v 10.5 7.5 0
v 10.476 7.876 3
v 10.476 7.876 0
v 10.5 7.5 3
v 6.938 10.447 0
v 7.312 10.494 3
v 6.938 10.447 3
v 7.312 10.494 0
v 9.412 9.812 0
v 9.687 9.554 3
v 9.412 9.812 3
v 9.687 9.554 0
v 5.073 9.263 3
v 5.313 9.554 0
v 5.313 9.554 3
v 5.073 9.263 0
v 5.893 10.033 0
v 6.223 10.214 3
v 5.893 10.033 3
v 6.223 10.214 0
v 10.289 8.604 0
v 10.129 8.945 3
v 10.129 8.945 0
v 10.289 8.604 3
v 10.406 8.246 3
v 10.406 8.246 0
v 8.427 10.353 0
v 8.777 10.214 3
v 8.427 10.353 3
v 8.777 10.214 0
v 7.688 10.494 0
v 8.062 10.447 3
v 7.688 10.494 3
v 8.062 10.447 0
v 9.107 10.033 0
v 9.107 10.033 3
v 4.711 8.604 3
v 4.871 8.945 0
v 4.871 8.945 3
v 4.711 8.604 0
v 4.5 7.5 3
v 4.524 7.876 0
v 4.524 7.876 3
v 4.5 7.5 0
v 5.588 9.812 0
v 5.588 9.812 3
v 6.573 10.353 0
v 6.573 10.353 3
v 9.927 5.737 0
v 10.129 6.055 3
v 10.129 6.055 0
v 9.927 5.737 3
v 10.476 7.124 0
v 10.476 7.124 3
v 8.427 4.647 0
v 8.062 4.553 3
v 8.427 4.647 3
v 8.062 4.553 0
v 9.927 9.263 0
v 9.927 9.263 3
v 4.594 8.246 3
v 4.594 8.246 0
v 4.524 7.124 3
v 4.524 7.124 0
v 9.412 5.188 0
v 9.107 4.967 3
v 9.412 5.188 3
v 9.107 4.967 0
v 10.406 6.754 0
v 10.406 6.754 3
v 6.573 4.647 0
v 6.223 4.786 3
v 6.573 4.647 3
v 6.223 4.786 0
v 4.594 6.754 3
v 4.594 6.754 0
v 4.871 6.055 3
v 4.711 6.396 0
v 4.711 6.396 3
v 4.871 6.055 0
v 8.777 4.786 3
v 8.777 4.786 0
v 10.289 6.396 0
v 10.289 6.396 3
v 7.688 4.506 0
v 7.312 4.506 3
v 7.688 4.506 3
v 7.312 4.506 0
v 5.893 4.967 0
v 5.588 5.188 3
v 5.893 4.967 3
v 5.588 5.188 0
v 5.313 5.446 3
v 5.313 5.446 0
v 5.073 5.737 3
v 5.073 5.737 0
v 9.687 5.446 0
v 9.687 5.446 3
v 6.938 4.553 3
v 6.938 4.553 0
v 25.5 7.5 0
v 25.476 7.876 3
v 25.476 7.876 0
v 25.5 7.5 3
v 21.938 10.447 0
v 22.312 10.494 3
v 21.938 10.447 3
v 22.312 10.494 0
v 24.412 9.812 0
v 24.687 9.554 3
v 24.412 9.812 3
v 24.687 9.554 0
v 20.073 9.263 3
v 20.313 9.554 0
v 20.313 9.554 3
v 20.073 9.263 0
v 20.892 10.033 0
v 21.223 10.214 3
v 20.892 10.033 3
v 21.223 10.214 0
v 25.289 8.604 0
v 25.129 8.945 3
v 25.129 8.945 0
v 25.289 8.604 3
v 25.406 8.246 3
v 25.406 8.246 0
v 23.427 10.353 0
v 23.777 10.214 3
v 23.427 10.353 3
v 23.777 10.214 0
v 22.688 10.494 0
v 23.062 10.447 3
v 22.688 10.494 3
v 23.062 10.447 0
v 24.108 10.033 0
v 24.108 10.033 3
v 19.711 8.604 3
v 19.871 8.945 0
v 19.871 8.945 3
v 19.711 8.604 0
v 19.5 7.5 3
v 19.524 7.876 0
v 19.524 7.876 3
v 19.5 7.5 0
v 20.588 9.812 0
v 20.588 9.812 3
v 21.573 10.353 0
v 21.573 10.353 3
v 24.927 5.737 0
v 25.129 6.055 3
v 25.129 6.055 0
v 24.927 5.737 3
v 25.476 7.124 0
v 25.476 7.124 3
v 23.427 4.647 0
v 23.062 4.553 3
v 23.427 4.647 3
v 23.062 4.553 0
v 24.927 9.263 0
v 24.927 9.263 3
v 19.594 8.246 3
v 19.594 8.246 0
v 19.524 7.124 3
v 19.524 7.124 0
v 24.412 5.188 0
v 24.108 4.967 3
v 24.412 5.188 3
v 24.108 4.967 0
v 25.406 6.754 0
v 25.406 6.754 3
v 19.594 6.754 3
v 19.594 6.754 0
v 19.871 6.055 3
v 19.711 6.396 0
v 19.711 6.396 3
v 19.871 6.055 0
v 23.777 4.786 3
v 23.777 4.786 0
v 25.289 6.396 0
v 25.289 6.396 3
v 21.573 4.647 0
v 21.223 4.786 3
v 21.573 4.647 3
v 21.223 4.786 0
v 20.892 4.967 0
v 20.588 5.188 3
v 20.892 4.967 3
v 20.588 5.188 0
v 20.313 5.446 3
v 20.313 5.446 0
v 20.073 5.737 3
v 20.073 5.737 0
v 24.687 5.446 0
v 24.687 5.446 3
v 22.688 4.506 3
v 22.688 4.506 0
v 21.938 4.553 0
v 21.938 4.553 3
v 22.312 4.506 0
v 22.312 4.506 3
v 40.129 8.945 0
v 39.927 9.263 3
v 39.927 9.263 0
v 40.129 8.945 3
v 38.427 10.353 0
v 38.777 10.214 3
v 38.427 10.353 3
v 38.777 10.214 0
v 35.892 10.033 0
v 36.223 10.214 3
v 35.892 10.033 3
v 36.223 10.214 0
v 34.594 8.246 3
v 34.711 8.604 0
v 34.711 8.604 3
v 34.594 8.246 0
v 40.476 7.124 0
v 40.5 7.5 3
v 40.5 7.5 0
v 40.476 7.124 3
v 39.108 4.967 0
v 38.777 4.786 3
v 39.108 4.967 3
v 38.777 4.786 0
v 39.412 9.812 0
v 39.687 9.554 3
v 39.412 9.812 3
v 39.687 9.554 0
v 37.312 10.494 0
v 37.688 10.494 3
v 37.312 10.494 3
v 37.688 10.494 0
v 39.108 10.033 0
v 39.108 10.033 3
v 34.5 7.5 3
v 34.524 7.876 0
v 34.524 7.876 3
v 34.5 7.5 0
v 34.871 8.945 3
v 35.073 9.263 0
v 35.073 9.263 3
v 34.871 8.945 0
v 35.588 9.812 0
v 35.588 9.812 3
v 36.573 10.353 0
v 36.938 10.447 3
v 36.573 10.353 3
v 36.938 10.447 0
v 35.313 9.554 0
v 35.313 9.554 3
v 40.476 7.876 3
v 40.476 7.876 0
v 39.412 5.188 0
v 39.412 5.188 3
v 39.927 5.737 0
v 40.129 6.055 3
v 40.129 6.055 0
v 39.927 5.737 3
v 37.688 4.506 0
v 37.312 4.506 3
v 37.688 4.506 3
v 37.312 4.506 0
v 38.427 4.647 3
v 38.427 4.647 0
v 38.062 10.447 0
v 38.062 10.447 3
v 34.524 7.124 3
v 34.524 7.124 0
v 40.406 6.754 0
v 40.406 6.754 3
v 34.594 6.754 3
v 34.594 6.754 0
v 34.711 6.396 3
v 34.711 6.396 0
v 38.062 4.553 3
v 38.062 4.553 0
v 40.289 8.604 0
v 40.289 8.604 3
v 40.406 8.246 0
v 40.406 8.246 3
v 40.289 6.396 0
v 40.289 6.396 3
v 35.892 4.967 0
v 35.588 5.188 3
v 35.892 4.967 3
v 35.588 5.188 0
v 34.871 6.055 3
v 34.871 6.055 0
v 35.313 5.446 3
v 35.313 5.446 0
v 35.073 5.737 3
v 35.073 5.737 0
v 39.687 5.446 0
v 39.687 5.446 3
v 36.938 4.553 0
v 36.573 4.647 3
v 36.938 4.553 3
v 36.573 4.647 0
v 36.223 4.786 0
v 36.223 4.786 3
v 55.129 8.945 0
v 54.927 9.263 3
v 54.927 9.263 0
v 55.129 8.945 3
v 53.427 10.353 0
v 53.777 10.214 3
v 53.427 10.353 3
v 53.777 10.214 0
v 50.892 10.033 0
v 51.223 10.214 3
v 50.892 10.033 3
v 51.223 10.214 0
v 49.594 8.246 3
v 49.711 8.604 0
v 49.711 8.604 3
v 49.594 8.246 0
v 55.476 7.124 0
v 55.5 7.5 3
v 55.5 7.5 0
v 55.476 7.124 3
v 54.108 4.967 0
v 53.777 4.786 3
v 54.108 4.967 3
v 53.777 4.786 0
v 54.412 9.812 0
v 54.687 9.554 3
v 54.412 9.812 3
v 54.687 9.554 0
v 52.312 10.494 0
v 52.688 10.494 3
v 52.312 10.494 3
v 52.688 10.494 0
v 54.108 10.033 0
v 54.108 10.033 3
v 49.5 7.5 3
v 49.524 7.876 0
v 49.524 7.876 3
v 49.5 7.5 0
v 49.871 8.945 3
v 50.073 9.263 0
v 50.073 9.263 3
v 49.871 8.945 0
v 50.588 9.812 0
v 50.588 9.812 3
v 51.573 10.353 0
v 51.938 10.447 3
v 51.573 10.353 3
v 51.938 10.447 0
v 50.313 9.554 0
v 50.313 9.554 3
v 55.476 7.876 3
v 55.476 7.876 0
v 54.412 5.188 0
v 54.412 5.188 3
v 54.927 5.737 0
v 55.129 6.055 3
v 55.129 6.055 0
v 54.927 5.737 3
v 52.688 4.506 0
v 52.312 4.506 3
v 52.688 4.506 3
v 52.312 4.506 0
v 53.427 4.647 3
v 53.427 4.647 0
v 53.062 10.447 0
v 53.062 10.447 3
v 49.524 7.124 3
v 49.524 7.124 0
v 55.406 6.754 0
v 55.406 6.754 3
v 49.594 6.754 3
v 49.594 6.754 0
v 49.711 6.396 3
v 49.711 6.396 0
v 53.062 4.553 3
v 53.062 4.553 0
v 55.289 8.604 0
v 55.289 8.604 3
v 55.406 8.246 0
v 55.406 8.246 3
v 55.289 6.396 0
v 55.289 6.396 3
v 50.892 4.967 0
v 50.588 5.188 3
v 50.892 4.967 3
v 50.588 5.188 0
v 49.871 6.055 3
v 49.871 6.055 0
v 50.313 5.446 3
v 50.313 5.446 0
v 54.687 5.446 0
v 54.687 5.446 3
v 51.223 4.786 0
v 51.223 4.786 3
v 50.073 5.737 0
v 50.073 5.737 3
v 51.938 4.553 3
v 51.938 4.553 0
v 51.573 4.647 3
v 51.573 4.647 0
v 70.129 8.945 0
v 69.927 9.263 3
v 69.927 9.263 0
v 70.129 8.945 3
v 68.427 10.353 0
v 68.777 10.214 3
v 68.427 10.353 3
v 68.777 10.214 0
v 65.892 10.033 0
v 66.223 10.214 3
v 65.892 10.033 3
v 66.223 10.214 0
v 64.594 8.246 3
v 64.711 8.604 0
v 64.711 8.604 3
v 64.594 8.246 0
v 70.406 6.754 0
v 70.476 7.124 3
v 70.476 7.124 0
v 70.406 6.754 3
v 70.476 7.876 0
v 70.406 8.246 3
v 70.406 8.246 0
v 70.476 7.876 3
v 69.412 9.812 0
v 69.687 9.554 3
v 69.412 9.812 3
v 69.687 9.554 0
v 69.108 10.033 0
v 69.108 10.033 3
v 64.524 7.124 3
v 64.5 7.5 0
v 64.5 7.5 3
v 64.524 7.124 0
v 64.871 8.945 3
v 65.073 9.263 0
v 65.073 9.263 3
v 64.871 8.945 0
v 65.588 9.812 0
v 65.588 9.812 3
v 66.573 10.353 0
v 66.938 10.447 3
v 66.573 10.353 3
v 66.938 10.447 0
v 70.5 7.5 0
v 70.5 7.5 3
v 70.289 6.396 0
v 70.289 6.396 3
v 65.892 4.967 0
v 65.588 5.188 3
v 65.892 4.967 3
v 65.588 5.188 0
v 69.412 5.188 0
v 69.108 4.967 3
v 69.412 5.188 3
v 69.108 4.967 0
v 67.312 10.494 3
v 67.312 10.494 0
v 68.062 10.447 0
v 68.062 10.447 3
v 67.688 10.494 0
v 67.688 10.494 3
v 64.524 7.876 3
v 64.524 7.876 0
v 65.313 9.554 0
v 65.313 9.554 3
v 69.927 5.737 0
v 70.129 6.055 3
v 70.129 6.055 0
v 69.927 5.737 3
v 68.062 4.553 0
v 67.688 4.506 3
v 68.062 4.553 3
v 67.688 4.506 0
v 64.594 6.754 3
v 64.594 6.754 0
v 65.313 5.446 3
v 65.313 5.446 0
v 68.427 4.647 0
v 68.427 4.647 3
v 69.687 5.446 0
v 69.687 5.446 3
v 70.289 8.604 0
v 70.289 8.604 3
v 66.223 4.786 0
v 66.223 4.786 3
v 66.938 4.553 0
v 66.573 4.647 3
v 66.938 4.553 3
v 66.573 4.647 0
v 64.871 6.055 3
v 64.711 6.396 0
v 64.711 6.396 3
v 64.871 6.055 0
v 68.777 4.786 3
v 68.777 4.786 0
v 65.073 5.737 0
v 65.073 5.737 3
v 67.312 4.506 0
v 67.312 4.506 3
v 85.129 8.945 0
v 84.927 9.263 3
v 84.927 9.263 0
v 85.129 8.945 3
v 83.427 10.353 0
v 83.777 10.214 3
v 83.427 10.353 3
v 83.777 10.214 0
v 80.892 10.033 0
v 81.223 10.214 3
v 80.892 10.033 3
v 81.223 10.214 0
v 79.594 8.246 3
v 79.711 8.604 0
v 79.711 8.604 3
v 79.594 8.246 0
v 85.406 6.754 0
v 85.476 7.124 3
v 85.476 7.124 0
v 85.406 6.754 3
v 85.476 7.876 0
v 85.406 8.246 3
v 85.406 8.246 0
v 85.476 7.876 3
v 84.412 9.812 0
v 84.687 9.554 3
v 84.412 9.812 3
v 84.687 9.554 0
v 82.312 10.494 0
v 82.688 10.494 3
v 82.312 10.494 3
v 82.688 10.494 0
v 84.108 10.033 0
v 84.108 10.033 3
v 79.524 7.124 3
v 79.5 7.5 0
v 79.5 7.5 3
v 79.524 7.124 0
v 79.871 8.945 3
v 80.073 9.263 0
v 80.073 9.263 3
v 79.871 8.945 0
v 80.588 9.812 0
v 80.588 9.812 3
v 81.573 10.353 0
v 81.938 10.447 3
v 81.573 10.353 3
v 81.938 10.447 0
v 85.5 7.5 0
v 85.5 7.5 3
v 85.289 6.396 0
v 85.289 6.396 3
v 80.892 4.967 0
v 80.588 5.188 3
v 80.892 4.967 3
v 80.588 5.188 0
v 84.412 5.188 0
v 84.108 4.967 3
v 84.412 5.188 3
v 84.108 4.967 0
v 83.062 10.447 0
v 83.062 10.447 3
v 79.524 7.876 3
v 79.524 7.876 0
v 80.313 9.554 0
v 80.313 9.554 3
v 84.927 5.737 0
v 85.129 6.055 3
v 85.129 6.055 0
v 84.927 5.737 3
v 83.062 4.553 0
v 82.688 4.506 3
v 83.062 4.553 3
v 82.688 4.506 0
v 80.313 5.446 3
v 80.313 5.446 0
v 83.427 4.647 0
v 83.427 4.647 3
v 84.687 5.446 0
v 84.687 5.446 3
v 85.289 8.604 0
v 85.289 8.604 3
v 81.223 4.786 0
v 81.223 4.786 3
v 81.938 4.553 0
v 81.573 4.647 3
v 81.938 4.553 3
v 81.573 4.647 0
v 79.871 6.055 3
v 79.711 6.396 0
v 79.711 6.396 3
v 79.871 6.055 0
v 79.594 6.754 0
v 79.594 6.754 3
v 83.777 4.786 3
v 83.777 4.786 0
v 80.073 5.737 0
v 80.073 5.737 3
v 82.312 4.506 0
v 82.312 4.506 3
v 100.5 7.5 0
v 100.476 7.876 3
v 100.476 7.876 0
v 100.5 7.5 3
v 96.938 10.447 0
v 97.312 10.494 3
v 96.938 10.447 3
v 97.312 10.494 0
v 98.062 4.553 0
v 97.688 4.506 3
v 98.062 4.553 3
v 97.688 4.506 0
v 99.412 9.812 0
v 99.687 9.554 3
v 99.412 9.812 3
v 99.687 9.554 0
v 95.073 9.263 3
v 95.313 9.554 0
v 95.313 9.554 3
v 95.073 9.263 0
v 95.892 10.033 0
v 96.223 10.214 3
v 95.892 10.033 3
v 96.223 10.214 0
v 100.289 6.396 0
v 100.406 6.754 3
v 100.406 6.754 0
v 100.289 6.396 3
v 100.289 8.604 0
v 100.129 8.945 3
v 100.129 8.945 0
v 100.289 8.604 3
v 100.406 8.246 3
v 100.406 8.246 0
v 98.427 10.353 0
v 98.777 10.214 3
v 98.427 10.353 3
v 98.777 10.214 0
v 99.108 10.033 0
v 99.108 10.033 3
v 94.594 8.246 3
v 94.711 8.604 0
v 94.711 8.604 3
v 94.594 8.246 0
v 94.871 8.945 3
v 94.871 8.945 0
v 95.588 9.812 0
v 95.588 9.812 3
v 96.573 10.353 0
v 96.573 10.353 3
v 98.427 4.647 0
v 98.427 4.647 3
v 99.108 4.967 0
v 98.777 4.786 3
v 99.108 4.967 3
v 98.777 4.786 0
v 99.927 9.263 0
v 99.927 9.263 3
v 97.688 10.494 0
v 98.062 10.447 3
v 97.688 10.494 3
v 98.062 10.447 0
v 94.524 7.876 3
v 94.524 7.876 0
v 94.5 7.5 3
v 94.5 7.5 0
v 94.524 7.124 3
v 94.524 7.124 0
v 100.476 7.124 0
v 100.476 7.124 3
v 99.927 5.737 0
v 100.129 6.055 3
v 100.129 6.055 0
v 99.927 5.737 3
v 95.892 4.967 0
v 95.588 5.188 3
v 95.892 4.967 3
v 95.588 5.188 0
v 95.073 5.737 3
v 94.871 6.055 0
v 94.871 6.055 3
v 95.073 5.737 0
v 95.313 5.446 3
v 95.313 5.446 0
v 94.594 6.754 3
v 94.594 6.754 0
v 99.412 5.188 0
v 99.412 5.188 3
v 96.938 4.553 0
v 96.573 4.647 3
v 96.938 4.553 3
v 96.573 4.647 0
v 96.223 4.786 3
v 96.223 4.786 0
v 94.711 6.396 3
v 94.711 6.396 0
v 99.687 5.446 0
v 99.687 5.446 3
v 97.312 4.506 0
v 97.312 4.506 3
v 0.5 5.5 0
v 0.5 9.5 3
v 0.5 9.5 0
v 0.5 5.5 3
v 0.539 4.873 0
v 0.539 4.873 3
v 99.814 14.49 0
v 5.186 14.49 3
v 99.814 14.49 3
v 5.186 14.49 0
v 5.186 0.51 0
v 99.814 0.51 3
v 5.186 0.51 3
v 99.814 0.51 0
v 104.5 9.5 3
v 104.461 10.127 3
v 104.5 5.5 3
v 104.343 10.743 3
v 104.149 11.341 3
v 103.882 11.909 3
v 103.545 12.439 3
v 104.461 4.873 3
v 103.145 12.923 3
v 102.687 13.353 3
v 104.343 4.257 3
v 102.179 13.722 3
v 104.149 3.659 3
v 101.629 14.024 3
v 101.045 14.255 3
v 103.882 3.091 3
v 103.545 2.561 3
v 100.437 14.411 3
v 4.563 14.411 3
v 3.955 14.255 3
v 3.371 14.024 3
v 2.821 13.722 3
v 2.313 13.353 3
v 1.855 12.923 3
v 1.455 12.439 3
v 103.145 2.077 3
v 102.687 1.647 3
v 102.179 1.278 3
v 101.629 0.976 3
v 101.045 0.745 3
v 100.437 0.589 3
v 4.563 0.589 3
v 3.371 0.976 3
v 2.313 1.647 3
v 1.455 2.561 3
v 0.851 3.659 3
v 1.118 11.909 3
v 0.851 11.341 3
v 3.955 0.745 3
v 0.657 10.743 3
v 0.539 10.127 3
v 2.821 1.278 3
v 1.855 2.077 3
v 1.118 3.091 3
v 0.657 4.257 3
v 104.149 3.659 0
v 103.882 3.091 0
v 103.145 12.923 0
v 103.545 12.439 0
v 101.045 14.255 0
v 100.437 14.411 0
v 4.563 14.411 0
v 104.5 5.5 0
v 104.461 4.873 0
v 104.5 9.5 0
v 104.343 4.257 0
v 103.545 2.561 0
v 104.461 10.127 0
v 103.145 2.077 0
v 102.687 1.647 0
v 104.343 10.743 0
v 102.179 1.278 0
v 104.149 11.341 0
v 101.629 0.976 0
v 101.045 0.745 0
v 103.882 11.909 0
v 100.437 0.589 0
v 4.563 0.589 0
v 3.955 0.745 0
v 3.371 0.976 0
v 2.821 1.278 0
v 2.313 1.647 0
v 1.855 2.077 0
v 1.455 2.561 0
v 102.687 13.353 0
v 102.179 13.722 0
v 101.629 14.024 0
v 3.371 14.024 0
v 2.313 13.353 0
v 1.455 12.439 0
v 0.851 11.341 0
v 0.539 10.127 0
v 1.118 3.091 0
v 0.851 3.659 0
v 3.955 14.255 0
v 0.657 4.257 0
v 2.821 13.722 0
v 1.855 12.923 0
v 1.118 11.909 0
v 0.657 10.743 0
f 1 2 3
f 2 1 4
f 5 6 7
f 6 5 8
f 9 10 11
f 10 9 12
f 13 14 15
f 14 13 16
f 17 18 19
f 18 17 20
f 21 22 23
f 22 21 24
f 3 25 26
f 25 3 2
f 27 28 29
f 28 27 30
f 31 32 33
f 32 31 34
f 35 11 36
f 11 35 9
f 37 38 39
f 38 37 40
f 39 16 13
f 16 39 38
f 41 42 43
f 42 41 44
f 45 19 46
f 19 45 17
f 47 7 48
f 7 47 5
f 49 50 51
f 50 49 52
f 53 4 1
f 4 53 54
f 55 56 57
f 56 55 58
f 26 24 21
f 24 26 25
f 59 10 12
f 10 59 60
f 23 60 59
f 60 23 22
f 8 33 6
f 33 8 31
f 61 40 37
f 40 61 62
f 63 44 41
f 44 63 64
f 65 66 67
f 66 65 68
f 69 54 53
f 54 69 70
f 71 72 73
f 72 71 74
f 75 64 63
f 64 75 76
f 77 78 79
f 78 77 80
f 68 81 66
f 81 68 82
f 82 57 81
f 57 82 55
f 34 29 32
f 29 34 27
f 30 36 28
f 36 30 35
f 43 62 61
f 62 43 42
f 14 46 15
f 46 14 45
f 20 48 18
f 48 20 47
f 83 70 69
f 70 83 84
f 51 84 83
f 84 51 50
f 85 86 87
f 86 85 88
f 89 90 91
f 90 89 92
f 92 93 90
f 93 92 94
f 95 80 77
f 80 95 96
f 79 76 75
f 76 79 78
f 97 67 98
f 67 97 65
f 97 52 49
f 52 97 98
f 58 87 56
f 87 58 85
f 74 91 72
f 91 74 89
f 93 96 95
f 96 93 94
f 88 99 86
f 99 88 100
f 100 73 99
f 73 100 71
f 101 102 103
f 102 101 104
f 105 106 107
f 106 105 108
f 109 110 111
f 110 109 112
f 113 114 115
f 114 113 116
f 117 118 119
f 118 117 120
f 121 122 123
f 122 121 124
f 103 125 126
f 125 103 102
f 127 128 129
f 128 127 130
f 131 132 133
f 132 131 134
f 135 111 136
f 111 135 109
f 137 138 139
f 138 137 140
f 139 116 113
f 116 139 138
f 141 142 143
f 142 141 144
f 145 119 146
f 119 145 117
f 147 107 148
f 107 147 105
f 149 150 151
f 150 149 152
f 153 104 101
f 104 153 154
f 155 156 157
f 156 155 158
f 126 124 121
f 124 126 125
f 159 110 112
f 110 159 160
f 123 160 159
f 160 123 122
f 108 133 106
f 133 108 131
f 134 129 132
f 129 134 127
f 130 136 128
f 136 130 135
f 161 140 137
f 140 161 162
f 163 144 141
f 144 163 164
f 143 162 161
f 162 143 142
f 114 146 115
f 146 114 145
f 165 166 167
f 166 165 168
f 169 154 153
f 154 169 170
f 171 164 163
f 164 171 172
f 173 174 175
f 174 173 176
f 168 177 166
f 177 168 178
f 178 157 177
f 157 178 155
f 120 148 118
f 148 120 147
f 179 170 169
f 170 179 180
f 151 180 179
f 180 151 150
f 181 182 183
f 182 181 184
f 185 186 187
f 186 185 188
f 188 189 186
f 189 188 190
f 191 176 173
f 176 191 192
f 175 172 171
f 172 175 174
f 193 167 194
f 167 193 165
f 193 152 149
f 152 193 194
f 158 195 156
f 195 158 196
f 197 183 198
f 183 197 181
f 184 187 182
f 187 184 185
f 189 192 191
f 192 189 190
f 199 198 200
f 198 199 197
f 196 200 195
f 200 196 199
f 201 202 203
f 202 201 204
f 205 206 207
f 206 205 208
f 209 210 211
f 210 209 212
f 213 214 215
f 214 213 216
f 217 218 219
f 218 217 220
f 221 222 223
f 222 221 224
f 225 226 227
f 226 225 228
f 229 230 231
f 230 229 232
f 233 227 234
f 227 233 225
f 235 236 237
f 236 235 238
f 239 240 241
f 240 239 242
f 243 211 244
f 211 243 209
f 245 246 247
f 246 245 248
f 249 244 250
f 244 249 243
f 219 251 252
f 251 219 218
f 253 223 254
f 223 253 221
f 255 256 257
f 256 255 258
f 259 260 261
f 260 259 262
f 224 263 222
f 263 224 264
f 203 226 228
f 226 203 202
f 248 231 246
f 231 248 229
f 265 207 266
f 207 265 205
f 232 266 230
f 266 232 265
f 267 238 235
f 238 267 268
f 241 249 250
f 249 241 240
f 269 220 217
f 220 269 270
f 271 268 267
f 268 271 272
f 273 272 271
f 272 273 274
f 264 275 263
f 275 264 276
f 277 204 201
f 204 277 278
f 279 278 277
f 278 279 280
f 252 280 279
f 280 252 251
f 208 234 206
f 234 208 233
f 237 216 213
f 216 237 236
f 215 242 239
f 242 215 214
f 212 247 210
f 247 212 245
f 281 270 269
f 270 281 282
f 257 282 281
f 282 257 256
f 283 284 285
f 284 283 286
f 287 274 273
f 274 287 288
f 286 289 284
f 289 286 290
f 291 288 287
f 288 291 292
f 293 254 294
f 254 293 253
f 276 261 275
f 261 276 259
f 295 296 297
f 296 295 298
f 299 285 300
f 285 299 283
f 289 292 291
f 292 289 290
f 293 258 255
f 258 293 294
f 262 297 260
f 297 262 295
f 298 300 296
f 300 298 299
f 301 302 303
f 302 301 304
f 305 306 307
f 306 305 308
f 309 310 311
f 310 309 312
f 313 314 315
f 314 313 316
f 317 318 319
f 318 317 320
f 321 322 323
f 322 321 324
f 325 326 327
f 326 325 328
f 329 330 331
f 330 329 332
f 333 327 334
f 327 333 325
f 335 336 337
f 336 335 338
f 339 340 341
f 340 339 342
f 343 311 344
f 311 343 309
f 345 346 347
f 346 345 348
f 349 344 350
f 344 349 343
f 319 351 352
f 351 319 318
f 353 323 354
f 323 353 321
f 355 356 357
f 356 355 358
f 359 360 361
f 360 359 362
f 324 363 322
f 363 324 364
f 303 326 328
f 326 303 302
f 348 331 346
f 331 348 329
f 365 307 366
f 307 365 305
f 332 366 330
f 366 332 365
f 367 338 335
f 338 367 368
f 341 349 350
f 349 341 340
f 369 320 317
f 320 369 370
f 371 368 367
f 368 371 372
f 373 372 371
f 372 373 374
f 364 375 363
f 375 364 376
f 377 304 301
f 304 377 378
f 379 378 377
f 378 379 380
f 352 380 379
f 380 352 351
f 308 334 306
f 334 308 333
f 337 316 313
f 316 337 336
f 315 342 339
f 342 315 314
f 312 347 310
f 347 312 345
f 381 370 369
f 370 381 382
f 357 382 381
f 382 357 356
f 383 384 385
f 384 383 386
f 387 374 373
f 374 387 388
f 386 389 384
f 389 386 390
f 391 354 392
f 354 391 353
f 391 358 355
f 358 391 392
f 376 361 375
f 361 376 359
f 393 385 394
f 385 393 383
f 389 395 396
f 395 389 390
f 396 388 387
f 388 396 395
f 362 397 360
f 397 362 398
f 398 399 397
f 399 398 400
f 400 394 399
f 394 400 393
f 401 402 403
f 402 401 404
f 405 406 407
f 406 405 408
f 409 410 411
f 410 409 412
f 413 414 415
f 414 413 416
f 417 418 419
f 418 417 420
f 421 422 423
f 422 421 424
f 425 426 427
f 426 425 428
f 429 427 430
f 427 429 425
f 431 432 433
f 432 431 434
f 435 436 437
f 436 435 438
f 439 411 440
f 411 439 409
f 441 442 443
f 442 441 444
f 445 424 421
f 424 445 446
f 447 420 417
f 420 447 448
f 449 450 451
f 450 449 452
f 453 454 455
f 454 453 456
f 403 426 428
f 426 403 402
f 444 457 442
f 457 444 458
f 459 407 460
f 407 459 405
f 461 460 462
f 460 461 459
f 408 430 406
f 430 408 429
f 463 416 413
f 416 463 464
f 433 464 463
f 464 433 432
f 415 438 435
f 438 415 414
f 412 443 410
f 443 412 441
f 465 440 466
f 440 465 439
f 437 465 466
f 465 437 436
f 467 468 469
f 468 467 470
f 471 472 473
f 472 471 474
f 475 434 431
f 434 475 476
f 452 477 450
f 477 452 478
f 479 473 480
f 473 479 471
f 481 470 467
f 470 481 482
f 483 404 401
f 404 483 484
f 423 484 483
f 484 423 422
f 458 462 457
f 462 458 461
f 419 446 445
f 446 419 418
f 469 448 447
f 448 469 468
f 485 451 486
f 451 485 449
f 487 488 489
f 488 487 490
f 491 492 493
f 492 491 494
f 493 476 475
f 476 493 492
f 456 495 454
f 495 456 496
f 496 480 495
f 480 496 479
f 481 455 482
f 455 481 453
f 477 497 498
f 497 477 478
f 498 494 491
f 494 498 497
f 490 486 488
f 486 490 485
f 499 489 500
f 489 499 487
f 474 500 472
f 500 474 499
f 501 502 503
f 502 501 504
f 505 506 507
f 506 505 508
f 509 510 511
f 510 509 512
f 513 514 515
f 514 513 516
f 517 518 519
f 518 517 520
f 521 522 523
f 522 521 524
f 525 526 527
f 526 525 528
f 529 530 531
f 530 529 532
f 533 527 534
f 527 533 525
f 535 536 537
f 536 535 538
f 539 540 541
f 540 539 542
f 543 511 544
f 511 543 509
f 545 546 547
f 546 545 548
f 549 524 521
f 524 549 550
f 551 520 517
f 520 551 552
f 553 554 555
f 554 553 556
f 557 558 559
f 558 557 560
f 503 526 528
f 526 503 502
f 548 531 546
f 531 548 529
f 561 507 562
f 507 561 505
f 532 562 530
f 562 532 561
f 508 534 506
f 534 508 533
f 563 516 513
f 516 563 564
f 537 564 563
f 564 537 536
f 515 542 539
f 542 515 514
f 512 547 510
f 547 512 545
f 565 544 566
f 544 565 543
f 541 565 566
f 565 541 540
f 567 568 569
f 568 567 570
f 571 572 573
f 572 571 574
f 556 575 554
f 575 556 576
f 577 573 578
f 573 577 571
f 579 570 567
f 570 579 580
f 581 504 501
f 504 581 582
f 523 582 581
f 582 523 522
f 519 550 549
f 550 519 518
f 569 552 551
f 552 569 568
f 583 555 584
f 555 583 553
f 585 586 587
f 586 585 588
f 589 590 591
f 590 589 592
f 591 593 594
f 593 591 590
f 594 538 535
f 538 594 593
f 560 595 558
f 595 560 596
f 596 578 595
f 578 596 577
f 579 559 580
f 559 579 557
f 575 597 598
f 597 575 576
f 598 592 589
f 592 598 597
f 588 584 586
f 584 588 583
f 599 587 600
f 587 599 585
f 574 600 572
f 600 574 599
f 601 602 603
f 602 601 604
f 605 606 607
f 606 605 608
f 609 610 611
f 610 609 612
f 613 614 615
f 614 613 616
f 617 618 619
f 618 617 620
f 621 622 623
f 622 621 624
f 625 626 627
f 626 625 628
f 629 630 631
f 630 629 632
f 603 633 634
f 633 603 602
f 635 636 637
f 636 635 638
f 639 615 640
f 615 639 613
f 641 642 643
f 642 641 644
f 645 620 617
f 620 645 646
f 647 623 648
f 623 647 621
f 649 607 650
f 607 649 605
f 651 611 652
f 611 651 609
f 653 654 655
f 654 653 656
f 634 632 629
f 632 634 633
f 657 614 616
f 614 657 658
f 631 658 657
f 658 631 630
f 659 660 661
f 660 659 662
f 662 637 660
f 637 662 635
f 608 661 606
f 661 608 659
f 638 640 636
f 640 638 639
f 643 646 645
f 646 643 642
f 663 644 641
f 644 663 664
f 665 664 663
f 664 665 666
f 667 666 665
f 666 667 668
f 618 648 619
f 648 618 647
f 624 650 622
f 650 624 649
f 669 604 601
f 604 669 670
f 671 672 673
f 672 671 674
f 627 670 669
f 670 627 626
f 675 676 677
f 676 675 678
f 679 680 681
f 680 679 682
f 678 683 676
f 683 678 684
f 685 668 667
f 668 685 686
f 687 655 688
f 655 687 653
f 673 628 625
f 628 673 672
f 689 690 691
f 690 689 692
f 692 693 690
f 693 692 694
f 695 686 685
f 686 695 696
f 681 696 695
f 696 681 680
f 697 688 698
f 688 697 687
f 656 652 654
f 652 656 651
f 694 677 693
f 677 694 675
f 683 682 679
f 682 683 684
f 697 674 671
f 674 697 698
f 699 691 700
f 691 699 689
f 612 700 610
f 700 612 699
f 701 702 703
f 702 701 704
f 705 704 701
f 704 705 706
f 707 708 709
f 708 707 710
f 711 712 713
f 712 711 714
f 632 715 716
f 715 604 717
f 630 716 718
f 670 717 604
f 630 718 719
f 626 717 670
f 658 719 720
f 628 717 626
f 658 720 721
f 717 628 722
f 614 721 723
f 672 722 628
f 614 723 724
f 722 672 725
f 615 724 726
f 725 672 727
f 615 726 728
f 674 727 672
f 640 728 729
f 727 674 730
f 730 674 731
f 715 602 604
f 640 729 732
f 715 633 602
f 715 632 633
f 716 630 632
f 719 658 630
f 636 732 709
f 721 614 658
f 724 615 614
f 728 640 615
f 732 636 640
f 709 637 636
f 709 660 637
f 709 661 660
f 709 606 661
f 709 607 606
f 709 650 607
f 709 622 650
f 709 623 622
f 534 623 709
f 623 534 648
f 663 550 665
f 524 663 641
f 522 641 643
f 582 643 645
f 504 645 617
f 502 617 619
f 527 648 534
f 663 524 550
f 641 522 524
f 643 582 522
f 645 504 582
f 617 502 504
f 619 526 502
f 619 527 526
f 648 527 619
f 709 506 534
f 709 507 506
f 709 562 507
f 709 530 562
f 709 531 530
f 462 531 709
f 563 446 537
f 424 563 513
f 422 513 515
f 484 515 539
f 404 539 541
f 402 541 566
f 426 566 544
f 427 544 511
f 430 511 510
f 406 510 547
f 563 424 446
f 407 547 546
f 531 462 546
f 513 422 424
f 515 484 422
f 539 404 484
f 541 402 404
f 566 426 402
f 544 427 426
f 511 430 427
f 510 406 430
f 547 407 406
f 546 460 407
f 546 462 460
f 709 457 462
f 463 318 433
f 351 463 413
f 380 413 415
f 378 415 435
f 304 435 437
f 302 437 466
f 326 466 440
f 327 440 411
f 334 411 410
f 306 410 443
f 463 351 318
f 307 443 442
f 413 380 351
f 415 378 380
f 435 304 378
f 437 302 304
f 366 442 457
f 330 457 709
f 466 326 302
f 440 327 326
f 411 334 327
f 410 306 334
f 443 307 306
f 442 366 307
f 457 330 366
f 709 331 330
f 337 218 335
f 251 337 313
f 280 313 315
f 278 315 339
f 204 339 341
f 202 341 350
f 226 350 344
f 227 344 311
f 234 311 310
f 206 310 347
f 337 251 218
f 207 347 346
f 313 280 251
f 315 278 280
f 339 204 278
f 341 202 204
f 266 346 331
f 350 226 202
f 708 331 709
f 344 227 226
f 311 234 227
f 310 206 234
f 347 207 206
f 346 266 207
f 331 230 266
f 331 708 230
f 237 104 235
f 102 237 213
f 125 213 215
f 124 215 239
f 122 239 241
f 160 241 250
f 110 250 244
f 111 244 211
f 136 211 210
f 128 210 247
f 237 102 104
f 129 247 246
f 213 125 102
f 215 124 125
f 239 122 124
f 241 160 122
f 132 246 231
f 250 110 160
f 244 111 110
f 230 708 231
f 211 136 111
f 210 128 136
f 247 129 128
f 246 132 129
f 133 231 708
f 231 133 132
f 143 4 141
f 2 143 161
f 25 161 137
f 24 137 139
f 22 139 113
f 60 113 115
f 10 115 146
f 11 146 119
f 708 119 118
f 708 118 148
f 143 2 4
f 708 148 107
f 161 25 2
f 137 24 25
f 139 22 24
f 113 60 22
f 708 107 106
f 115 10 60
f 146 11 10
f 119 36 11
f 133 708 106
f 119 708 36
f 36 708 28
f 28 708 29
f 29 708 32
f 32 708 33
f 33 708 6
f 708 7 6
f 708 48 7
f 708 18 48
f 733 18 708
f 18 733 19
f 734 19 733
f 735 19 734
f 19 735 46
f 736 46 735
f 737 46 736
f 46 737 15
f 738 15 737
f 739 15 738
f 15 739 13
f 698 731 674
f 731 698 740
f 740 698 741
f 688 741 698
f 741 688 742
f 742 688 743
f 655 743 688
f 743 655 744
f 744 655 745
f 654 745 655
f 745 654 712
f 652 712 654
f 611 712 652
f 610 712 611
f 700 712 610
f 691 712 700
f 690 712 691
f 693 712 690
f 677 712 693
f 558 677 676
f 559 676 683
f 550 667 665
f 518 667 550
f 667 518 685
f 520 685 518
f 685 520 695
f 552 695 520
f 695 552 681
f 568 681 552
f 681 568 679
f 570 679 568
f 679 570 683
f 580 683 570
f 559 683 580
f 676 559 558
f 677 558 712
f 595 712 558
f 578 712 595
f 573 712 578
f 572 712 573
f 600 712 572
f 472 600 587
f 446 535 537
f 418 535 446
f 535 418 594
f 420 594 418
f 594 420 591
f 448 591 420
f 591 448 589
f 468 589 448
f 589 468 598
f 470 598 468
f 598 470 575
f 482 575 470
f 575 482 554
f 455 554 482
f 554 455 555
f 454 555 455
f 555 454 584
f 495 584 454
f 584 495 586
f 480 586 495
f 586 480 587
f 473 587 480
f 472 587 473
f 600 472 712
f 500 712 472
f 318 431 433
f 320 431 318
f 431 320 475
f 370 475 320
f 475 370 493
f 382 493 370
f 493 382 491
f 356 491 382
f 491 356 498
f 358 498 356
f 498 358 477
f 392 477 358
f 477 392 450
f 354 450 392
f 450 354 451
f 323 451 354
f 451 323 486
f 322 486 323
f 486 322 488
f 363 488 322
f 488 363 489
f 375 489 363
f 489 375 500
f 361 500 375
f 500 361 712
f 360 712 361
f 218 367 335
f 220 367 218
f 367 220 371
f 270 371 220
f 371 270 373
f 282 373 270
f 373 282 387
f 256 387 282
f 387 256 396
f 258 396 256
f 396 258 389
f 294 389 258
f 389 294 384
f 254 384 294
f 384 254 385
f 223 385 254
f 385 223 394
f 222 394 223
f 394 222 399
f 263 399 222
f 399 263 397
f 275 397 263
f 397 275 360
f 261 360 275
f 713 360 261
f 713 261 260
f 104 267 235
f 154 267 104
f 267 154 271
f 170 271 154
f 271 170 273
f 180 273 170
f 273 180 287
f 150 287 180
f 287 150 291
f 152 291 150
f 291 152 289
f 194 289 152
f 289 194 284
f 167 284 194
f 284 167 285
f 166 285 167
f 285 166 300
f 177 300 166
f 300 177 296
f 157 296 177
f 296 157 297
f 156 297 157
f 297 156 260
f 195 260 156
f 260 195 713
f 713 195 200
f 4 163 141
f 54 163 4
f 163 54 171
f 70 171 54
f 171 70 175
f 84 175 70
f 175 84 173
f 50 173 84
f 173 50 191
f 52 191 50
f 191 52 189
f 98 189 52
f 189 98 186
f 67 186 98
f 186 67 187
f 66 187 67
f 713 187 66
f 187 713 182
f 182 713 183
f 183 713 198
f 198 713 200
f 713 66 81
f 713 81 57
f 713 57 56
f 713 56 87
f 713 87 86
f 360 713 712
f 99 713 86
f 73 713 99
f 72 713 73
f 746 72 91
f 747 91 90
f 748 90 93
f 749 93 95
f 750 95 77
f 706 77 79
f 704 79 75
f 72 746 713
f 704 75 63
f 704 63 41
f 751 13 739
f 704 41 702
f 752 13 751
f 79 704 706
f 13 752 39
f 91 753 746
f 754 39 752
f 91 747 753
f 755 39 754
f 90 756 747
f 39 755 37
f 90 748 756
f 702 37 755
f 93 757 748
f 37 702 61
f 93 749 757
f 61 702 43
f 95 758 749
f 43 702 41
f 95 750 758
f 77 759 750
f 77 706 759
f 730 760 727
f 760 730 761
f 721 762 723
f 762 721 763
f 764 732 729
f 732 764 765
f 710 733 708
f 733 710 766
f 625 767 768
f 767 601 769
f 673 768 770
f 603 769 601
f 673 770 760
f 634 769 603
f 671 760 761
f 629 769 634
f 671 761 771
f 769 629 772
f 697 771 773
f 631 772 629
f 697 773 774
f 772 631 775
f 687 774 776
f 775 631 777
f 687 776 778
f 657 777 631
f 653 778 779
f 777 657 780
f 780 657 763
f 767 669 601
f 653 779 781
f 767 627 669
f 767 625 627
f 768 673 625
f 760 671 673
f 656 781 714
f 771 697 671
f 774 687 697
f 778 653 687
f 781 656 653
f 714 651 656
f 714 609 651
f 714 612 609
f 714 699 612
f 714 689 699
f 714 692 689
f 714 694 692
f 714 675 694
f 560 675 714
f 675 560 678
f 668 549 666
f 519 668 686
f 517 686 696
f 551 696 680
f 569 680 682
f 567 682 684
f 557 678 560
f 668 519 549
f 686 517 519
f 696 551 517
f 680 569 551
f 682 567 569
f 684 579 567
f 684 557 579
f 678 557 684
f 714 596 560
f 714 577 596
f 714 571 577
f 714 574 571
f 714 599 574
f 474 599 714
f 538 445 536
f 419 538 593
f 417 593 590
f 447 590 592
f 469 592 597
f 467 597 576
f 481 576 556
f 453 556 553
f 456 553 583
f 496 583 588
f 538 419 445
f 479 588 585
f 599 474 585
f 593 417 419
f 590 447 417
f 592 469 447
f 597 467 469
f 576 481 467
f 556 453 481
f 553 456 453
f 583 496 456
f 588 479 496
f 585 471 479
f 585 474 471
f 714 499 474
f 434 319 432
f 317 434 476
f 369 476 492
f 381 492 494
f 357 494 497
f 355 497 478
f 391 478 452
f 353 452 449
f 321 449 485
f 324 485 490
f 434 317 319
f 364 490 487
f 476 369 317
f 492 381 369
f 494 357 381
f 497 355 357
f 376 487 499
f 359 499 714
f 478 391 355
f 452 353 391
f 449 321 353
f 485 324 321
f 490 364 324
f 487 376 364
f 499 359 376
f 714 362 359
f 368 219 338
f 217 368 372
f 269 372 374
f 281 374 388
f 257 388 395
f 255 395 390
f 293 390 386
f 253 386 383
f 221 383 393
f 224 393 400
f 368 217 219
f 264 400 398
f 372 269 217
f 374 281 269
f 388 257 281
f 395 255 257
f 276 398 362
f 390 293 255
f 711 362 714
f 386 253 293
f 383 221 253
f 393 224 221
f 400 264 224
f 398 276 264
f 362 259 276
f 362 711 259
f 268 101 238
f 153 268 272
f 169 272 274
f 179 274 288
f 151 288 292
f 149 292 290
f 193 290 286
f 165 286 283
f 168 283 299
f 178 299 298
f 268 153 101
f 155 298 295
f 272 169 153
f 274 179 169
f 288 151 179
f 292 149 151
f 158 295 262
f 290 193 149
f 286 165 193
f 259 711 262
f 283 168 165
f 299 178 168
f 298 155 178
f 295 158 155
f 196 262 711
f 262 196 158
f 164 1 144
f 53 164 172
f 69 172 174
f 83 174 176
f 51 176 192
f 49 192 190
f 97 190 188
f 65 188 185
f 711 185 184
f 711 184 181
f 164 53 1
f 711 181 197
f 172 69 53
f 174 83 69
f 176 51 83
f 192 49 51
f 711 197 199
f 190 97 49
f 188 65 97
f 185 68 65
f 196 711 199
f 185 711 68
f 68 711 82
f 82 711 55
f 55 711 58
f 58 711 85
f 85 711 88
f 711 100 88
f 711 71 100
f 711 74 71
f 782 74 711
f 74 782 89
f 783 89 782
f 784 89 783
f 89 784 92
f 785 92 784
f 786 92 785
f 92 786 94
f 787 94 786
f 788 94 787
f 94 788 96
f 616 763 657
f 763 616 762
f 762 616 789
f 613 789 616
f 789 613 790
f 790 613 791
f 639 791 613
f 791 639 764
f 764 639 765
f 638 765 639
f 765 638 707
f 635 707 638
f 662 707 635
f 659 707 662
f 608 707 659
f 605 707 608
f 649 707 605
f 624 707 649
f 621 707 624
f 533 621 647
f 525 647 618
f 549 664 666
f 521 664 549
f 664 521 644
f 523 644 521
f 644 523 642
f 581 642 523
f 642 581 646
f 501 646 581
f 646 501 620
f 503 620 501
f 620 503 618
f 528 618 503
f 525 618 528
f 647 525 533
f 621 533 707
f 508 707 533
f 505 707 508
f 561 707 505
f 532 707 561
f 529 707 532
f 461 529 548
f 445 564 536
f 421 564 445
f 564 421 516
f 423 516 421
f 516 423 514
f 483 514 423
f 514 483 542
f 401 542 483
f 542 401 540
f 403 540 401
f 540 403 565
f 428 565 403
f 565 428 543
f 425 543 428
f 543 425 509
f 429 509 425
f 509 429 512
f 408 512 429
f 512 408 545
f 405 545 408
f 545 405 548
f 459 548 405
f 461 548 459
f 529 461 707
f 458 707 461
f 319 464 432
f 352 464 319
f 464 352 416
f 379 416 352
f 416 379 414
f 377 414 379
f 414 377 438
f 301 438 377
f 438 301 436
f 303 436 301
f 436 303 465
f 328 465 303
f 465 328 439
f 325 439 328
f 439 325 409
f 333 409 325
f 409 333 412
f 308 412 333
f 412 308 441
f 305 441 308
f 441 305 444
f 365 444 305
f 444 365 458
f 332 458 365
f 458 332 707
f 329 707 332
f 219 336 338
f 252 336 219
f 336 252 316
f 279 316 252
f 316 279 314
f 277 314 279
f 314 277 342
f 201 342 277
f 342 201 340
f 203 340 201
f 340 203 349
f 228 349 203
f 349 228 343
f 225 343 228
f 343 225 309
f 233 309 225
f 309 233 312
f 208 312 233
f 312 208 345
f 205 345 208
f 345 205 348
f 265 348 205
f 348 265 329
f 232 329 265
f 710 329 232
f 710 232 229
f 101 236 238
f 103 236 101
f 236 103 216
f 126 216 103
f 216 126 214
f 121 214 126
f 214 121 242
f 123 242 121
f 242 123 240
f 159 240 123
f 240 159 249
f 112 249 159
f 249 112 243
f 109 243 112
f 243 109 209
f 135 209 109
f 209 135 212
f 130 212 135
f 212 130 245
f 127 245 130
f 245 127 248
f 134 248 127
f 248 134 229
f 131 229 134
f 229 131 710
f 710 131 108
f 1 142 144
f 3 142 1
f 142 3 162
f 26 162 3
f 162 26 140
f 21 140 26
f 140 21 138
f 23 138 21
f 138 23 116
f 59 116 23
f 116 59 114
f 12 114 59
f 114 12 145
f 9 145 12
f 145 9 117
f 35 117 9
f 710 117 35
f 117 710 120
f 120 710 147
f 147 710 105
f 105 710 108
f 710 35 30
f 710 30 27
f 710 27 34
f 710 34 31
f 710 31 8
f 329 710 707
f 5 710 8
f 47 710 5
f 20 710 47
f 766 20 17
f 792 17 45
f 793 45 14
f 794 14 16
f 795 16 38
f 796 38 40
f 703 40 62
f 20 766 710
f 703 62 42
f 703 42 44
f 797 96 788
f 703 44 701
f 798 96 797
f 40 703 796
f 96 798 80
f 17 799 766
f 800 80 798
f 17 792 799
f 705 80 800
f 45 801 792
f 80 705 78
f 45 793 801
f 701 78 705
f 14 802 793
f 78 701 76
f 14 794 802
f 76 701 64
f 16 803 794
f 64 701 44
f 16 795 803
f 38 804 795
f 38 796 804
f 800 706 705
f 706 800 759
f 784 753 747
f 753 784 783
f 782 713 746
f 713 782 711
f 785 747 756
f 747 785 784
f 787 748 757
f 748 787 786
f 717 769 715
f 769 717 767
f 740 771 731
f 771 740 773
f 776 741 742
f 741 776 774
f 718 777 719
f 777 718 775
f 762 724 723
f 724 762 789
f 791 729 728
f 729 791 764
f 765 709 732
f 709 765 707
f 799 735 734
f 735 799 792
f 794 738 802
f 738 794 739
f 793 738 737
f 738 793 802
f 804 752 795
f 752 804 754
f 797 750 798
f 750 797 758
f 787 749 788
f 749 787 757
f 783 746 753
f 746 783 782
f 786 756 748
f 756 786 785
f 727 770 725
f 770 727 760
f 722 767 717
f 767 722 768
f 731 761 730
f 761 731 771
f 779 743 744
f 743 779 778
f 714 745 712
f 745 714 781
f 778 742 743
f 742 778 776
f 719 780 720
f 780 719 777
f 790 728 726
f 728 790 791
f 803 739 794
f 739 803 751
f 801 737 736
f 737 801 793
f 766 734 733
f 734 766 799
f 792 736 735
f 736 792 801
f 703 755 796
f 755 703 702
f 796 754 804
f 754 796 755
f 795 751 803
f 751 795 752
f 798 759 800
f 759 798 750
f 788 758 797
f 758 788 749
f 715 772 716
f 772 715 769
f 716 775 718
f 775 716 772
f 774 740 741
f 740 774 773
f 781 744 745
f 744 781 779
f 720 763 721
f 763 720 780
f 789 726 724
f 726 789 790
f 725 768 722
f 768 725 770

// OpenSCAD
// Generated by SolidPython 1.1.3 on 2023-01-09 15:31:36
$fn = 50;


difference() {
	union() {
		translate(v = [52.5000000000, 7.5000000000, 0]) {
			rotate(a = [0, 0, 0]) {
				hull() {
					translate(v = [-47.0000000000, 2.0000000000, 0]) {
						rotate(a = [0, 0, 0]) {
							translate(v = [0, 0, 0]) {
								rotate(a = [0, 0, 0]) {
									cylinder(h = 3, r = 5);
								}
							}
						}
					}
					translate(v = [47.0000000000, 2.0000000000, 0]) {
						rotate(a = [0, 0, 0]) {
							translate(v = [0, 0, 0]) {
								rotate(a = [0, 0, 0]) {
									cylinder(h = 3, r = 5);
								}
							}
						}
					}
					translate(v = [-47.0000000000, -2.0000000000, 0]) {
						rotate(a = [0, 0, 0]) {
							translate(v = [0, 0, 0]) {
								rotate(a = [0, 0, 0]) {
									cylinder(h = 3, r = 5);
								}
							}
						}
					}
					translate(v = [47.0000000000, -2.0000000000, 0]) {
						rotate(a = [0, 0, 0]) {
							translate(v = [0, 0, 0]) {
								rotate(a = [0, 0, 0]) {
									cylinder(h = 3, r = 5);
								}
							}
						}
					}
				}
			}
		}
	}
	union() {
		translate(v = [7.5000000000, 7.5000000000, 0]) {
			rotate(a = [0, 0, 0]) {
				translate(v = [0, 0, -50]) {
					rotate(a = [0, 0, 0]) {
						cylinder(h = 100, r = 3.0000000000);
					}
				}
			}
		}
		translate(v = [22.5000000000, 7.5000000000, 0]) {
			rotate(a = [0, 0, 0]) {
				translate(v = [0, 0, -50]) {
					rotate(a = [0, 0, 0]) {
						cylinder(h = 100, r = 3.0000000000);
					}
				}
			}
		}
		translate(v = [37.5000000000, 7.5000000000, 0]) {
			rotate(a = [0, 0, 0]) {
				translate(v = [0, 0, -50]) {
					rotate(a = [0, 0, 0]) {
						cylinder(h = 100, r = 3.0000000000);
					}
				}
			}
		}
		translate(v = [52.5000000000, 7.5000000000, 0]) {
			rotate(a = [0, 0, 0]) {
				translate(v = [0, 0, -50]) {
					rotate(a = [0, 0, 0]) {
						cylinder(h = 100, r = 3.0000000000);
					}
				}
			}
		}
		translate(v = [67.5000000000, 7.5000000000, 0]) {
			rotate(a = [0, 0, 0]) {
				translate(v = [0, 0, -50]) {
					rotate(a = [0, 0, 0]) {
						cylinder(h = 100, r = 3.0000000000);
					}
				}
			}
		}
		translate(v = [82.5000000000, 7.5000000000, 0]) {
			rotate(a = [0, 0, 0]) {
				translate(v = [0, 0, -50]) {
					rotate(a = [0, 0, 0]) {
						cylinder(h = 100, r = 3.0000000000);
					}
				}
			}
		}
		translate(v = [97.5000000000, 7.5000000000, 0]) {
			rotate(a = [0, 0, 0]) {
				translate(v = [0, 0, -50]) {
					rotate(a = [0, 0, 0]) {
						cylinder(h = 100, r = 3.0000000000);
					}
				}
			}
		}
	}
}
/***********************************************
*********      SolidPython code:      **********
************************************************
 
from solid import *
import os
import subprocess

import oomB

import opsc_library_gen

mode = "laser"
#mode = "3d_print"

defined_objects = {}

radius_dict = {}
countersunk_dict = {}


def set_mode(m):
    global mode
    mode = m
    radius_dict['M6'] = 6.5/2
    radius_dict['M3'] = 3.3/2
    if mode == "laser":
        radius_dict['M6'] = 6/2
        radius_dict['M3'] = 3/2

    countersunk_dict['M3'] = {}
    countersunk_dict['M3']['little_rad'] = radius_dict['M3']
    countersunk_dict['M3']['big_rad'] = (5.5+0.6)/2
    if mode == "laser":
        countersunk_dict['M3']['big_rad'] = (4.75+0.6)/2
        countersunk_dict['M3']['little_rad'] = (4.75+0.6)/2

    countersunk_dict['M3']['height'] = 1.7


def opsc_make_object(filename, objects, save_type="none",resolution=50, layers = 1, tilediff = 200, mode="laser"):
    set_mode(mode)
    save_type = save_type.lower()
    os.makedirs(os.path.dirname(filename), exist_ok=True)
    final_object = opsc_get_object(objects)
    # Save the final object to the specified filename    
    scad_render_to_file(final_object, filename, file_header='$fn = %s;' % resolution, include_orig_code=True)
    if mode == "laser":
        filename_laser = filename.replace(".scad","-flat.scad")
        scad_render_to_file(getLaser(final_object, layers=layers, tilediff=tilediff), filename_laser, file_header='$fn = %s;' % resolution, include_orig_code=True)
        if save_type == "all":
            saveToAll(filename_laser)
        elif save_type == "dxf":
            saveToDxf(filename_laser)
    if save_type == "all":
        saveToAll(filename)
    elif save_type == "dxf":
        saveToDxf(filename)


def opsc_get_object(objects):
    # Create the solidpython objects
    positive_objects = [get_opsc_item(obj) for obj in objects if obj['type'] == 'positive']
    negative_objects = [get_opsc_item(obj) for obj in objects if obj['type'] == 'negative']
    # Union the positive objects
    positive_object = union()(*positive_objects)
    # Union the negative objects
    negative_object = union()(*negative_objects)
    # Create the final object by subtracting the negative objects from the positive objects
    return difference()(positive_object, negative_object)

def get_opsc_item(params):
    # A dictionary to map radius string values to numerical values
    #radius_dict = {'small': 5, 'medium': 10, 'large': 15}
    # An array of function names for basic shapes
    basic_shapes = ['cube', 'sphere', 'cylinder']
    
    # An array of function names for other shapes
    other_shapes = ['hole', 'slot', 'rounded_rectangle', 'countersunk']
    


    # Convert radius to r if present, and remove radius from the params dictionary
    if 'radius' in params:
        if isinstance(params['radius'], str):
            # Use the radius_dict to map the radius string value to a numerical value
            params['r'] = radius_dict[params['radius']]
        else:
            params['r'] = params['radius']
        del params['radius']
    

    # Check if the object type is a basic shape
    if params['shape'] in basic_shapes:
        # Remove shape and unexpected dictionary values
        allowed_keys = {'size', 'r', 'r1', 'r2', 'd', 'h', 'rw', 'rh', 'dw', 'dh'}
        shape_params = {k: v for k, v in params.items() if k in allowed_keys}

        # Call the corresponding function for the shape parameter, using ** notation to pass the shape_params dictionary as keyword arguments
        return get_opsc_transform(params,globals()[params['shape']](**shape_params))
    
    # If the object type is not a basic shape, check if it's a defined object or one of the other shapes
    elif params['shape'] in other_shapes:
        # Call the corresponding function for the shape parameter, passing the params dictionary as an argument
        p2 = copy.deepcopy(params)
        p2["pos"] = [0,0,0]
        return get_opsc_transform(params,globals()[params['shape']](p2))
    
    # If the object is not a basic shape or a defined object, try to import it from a .scad file
    else:
        obj = defined_objects[params['shape']]
        return get_opsc_transform(params,obj)

def get_opsc_transform(params, solid_obj):
    # Rotate the object based on the 'rot' field in the params dictionary, or the 'rotX', 'rotY', and 'rotZ' fields if 'rot' is not present
    rot = params.get('rot', [])
    if rot:
        rotX, rotY, rotZ = rot
    else:
        rotX = params.get('rotX', 0)
        rotY = params.get('rotY', 0)
        rotZ = params.get('rotZ', 0)
    solid_obj = rotate([rotX, rotY, rotZ])(solid_obj)

    # Translate the object based on the 'pos' field in the params dictionary, or the 'x', 'y', and 'z' fields if 'pos' is not present
    pos = params.get('pos', [])
    if pos:
        x, y, z = pos
    else:
        x = params.get('x', 0)
        y = params.get('y', 0)
        z = params.get('z', 0)
    solid_obj = translate([x, y, z])(solid_obj)
    return solid_obj


import random

def opsc_easy_array(type, shape, repeats, pos_start, shift_arr, **kwargs):
    for i in range(0,3):
        repeats.append(1)
        pos_start.append(0)
        shift_arr.append(0)
    return_objects = []

    for x in range(0,repeats[0]):
        for y in range(0,repeats[1]):
            for z in range(0,repeats[2]):
                return_objects.append(opsc_easy(type, shape, pos=[pos_start[0]+x*shift_arr[0],pos_start[1]+y*shift_arr[1],pos_start[2]+z*shift_arr[2]], **kwargs))
    return return_objects                



def opsc_easy(type, shape, **kwargs):
    obj = {
        'type': type,
        'shape': shape
    }
    for param in ['size', 'r', 'r1', 'r2', 'd', 'h', 'rw', 'rh', 'dw', 'dh', 'pos', 'x', 'y', 'z', 'rot', 'rotX', 'rotY', 'rotZ', "w"]:
        if param in kwargs:
            obj[param] = kwargs[param]
    return obj

def hole(params):
    p2 = copy.deepcopy(params)  
    # Check if the radius is a string and replace it with the corresponding value from the dictionary
    if isinstance(p2['r'], str):
        p2['r'] = radius_dict[p2['r']]
    
    # Set the height to 100 if not specified
    if 'h' not in p2:
        p2['h'] = 100
        p2["pos"] = [0,0,-50]
    p2["center"] = True
    # Create the cylinder object
    p2["shape"] = "cylinder"
    p2["type"] = "positive"

    return get_opsc_item(p2)

import copy

def countersunk(params):
    p2 = copy.deepcopy(params)
    counter_rad = p2['r']
    p2['r'] = radius_dict[p2['r']]
    hp = copy.deepcopy(p2)
    hp["type"] = "positive"
    hp["shape"] = "hole"
    del hp["rot"]
    hol = get_opsc_item(hp)
    
    cp = copy.deepcopy(p2)
    cp["h"] = countersunk_dict[counter_rad]["height"]
    cp["r2"] = countersunk_dict[counter_rad]["little_rad"]
    cp["r1"] = countersunk_dict[counter_rad]["big_rad"]
    del cp["r"]
    del cp["rot"]
    cp["type"] = "positive"
    cp["shape"] = "cylinder"
    cp["pos"] = [0,0,0]

    top = get_opsc_item(cp)
    return union()(hol,top)



def slot(params):  
    p2 = copy.deepcopy(params) 
    if isinstance(p2['r'], str):
        p2['r'] = radius_dict[p2['r']]
    p2["type"] = "positive"
    p2["shape"] = "hole"
    del p2["rot"]
    p2["pos"] = [0,0,0]
    left = copy.deepcopy(p2)
    right = copy.deepcopy(p2)
    left["pos"][0] = p2["w"] / 2 - p2["r"] 
    
    right["pos"][0] = -p2["w"] / 2 + p2["r"] 
    pass
    leftObj = get_opsc_item(left)
    rightObj = get_opsc_item(right)
    return hull()(leftObj, rightObj)

def rounded_rectangle(params):   
    p2 = copy.deepcopy(params) 
    p2["h"] = p2["size"][2]
    p2["pos"] = p2.get("pos", [0, 0, 0]) 
    p2["type"] = "positive"
    p2["shape"] = "hole"
    p2["pos"] = [0,0,0]
    
    if 'rot' in p2:
        del p2["rot"]   
    if 'r' not in p2:
        p2["r"] = 5 
    tl = copy.deepcopy(p2)
    tr = copy.deepcopy(p2)
    bl = copy.deepcopy(p2)
    br = copy.deepcopy(p2)
    tl["pos"][0] = -(p2["size"][0] - p2["r"]*2)/2
    tl["pos"][1] = (p2["size"][1] - p2["r"]*2)/2
    tr["pos"][0] = (p2["size"][0] - p2["r"]*2)/2
    tr["pos"][1] = (p2["size"][1] - p2["r"]*2)/2
    bl["pos"][0] = -(p2["size"][0] - p2["r"]*2)/2
    bl["pos"][1] = -(p2["size"][1] - p2["r"]*2)/2
    br["pos"][0] = (p2["size"][0] - p2["r"]*2)/2
    br["pos"][1] = -(p2["size"][1] - p2["r"]*2)/2
    del tl["size"]
    del tr["size"]
    del bl["size"]
    del br["size"]
    tlo = get_opsc_item(tl)
    tro = get_opsc_item(tr)
    blo = get_opsc_item(bl)
    bro = get_opsc_item(br)    
    return hull()(tlo, tro, blo, bro)



def import_scad_object(filename):
    # Import the .scad file and convert it to a solidpython object
    #filename = "parts"
    obj = import_scad(filename)
    return obj.main()
    


import os
import solid as solidpython

# A dictionary to store the defined objects


def load_scad_objects():
    opsc_library_gen.gen_library(defined_objects)

import random

def test(num_objects):
    objects = []
    for i in range(num_objects):
        # Choose a random shape
        #shape = random.choice(['cube', 'sphere', 'cylinder', 'hole', 'slot', "rounded_rectangle"])
        shape = random.choice(["rounded_rectangle"])

        # Choose a random type
        type = random.choice(['positive', 'negative'])
        
        # Create an empty object dictionary
        obj = {'shape': shape, 'type': type}
        
        # Set shape-specific parameters
        if obj['shape'] in ['cube']:
            obj['size'] =  [random.uniform(5, 15), random.uniform(5, 15), random.uniform(5, 15)]
        if obj['shape'] in ['rounded_rectangle']:
            obj['size'] =  [random.uniform(5, 15), random.uniform(5, 15), random.uniform(5, 15)]
            obj['r'] = random.uniform(0.5, 5)
        elif obj['shape'] == 'sphere':
            obj['r'] = random.uniform(5, 15)
        elif obj['shape'] in ['cylinder', 'hole']:
            obj['r'] = random.uniform(0.5, 5)
            obj['h'] = random.uniform(5, 15)
        elif obj['shape'] == 'slot':
            obj['r'] = random.uniform(0.5, 5)
            obj['h'] = random.uniform(5, 15)
            obj['w'] = random.uniform(5, 15)
        
        # Set a random position and rotation
        obj['pos'] = [random.uniform(-20, 20), random.uniform(-20, 20), random.uniform(-20, 20)]
        obj['rot'] = [random.uniform(-180, 180), random.uniform(-180, 180), random.uniform(-180, 180)]
        
        # Add the object to the list
        objects.append(obj)
    return objects

####### old file saving
def saveToAll(fileIn):
    saveToDxf(fileIn)
    saveToPng(fileIn)
    saveToStl(fileIn)
    saveToSvg(fileIn)

def saveToDxf(fileIn, fileOut="", copy_to_laser=True):
    if fileOut == "":
        fileOut = fileIn.replace(".scad",".dxf")
    saveToFile(fileIn, fileOut)


    
def saveToPng(fileIn, fileOut="",extra="--render"):
    if fileOut == "":
        fileOut = fileIn.replace(".scad",".png")
    saveToFile(fileIn, fileOut)

def saveToStl(fileIn, fileOut=""):
    if fileOut == "":
        fileOut = fileIn.replace(".scad",".stl")
    saveToFile(fileIn, fileOut)
    
def saveToSvg(fileIn, fileOut=""):
    if fileOut == "":
        fileOut = fileIn.replace(".scad",".svg")
    saveToFile(fileIn, fileOut)

def saveToFile(fileIn, fileOut,extra=""):
    #extra = extra + " --colorscheme Tomorrow"

    launchStr = 'openscad -o "' + fileOut + '"' + extra + ' "' + fileIn + '"'
    if ".png" in fileOut:
        launchStr = launchStr + " --render"
    print("            saveToFile launch string: " + launchStr)
    subprocess.run(launchStr)
    x=0

def getLaser(final_object,start=1.5,layers=1,thickness=3,tilediff=200):
        rv= []

        for x in range(layers):
            rv.append(translate([0,x*tilediff,0])(
                    projection()(
                        intersection()(translate([-500,-500,start+x*thickness])(cube(size=[1000,1000,0.1])),
                            final_object
                        )
                    )
            )
            )
            
        return union()(rv)

set_mode("laser")
load_scad_objects() 
 
************************************************/
